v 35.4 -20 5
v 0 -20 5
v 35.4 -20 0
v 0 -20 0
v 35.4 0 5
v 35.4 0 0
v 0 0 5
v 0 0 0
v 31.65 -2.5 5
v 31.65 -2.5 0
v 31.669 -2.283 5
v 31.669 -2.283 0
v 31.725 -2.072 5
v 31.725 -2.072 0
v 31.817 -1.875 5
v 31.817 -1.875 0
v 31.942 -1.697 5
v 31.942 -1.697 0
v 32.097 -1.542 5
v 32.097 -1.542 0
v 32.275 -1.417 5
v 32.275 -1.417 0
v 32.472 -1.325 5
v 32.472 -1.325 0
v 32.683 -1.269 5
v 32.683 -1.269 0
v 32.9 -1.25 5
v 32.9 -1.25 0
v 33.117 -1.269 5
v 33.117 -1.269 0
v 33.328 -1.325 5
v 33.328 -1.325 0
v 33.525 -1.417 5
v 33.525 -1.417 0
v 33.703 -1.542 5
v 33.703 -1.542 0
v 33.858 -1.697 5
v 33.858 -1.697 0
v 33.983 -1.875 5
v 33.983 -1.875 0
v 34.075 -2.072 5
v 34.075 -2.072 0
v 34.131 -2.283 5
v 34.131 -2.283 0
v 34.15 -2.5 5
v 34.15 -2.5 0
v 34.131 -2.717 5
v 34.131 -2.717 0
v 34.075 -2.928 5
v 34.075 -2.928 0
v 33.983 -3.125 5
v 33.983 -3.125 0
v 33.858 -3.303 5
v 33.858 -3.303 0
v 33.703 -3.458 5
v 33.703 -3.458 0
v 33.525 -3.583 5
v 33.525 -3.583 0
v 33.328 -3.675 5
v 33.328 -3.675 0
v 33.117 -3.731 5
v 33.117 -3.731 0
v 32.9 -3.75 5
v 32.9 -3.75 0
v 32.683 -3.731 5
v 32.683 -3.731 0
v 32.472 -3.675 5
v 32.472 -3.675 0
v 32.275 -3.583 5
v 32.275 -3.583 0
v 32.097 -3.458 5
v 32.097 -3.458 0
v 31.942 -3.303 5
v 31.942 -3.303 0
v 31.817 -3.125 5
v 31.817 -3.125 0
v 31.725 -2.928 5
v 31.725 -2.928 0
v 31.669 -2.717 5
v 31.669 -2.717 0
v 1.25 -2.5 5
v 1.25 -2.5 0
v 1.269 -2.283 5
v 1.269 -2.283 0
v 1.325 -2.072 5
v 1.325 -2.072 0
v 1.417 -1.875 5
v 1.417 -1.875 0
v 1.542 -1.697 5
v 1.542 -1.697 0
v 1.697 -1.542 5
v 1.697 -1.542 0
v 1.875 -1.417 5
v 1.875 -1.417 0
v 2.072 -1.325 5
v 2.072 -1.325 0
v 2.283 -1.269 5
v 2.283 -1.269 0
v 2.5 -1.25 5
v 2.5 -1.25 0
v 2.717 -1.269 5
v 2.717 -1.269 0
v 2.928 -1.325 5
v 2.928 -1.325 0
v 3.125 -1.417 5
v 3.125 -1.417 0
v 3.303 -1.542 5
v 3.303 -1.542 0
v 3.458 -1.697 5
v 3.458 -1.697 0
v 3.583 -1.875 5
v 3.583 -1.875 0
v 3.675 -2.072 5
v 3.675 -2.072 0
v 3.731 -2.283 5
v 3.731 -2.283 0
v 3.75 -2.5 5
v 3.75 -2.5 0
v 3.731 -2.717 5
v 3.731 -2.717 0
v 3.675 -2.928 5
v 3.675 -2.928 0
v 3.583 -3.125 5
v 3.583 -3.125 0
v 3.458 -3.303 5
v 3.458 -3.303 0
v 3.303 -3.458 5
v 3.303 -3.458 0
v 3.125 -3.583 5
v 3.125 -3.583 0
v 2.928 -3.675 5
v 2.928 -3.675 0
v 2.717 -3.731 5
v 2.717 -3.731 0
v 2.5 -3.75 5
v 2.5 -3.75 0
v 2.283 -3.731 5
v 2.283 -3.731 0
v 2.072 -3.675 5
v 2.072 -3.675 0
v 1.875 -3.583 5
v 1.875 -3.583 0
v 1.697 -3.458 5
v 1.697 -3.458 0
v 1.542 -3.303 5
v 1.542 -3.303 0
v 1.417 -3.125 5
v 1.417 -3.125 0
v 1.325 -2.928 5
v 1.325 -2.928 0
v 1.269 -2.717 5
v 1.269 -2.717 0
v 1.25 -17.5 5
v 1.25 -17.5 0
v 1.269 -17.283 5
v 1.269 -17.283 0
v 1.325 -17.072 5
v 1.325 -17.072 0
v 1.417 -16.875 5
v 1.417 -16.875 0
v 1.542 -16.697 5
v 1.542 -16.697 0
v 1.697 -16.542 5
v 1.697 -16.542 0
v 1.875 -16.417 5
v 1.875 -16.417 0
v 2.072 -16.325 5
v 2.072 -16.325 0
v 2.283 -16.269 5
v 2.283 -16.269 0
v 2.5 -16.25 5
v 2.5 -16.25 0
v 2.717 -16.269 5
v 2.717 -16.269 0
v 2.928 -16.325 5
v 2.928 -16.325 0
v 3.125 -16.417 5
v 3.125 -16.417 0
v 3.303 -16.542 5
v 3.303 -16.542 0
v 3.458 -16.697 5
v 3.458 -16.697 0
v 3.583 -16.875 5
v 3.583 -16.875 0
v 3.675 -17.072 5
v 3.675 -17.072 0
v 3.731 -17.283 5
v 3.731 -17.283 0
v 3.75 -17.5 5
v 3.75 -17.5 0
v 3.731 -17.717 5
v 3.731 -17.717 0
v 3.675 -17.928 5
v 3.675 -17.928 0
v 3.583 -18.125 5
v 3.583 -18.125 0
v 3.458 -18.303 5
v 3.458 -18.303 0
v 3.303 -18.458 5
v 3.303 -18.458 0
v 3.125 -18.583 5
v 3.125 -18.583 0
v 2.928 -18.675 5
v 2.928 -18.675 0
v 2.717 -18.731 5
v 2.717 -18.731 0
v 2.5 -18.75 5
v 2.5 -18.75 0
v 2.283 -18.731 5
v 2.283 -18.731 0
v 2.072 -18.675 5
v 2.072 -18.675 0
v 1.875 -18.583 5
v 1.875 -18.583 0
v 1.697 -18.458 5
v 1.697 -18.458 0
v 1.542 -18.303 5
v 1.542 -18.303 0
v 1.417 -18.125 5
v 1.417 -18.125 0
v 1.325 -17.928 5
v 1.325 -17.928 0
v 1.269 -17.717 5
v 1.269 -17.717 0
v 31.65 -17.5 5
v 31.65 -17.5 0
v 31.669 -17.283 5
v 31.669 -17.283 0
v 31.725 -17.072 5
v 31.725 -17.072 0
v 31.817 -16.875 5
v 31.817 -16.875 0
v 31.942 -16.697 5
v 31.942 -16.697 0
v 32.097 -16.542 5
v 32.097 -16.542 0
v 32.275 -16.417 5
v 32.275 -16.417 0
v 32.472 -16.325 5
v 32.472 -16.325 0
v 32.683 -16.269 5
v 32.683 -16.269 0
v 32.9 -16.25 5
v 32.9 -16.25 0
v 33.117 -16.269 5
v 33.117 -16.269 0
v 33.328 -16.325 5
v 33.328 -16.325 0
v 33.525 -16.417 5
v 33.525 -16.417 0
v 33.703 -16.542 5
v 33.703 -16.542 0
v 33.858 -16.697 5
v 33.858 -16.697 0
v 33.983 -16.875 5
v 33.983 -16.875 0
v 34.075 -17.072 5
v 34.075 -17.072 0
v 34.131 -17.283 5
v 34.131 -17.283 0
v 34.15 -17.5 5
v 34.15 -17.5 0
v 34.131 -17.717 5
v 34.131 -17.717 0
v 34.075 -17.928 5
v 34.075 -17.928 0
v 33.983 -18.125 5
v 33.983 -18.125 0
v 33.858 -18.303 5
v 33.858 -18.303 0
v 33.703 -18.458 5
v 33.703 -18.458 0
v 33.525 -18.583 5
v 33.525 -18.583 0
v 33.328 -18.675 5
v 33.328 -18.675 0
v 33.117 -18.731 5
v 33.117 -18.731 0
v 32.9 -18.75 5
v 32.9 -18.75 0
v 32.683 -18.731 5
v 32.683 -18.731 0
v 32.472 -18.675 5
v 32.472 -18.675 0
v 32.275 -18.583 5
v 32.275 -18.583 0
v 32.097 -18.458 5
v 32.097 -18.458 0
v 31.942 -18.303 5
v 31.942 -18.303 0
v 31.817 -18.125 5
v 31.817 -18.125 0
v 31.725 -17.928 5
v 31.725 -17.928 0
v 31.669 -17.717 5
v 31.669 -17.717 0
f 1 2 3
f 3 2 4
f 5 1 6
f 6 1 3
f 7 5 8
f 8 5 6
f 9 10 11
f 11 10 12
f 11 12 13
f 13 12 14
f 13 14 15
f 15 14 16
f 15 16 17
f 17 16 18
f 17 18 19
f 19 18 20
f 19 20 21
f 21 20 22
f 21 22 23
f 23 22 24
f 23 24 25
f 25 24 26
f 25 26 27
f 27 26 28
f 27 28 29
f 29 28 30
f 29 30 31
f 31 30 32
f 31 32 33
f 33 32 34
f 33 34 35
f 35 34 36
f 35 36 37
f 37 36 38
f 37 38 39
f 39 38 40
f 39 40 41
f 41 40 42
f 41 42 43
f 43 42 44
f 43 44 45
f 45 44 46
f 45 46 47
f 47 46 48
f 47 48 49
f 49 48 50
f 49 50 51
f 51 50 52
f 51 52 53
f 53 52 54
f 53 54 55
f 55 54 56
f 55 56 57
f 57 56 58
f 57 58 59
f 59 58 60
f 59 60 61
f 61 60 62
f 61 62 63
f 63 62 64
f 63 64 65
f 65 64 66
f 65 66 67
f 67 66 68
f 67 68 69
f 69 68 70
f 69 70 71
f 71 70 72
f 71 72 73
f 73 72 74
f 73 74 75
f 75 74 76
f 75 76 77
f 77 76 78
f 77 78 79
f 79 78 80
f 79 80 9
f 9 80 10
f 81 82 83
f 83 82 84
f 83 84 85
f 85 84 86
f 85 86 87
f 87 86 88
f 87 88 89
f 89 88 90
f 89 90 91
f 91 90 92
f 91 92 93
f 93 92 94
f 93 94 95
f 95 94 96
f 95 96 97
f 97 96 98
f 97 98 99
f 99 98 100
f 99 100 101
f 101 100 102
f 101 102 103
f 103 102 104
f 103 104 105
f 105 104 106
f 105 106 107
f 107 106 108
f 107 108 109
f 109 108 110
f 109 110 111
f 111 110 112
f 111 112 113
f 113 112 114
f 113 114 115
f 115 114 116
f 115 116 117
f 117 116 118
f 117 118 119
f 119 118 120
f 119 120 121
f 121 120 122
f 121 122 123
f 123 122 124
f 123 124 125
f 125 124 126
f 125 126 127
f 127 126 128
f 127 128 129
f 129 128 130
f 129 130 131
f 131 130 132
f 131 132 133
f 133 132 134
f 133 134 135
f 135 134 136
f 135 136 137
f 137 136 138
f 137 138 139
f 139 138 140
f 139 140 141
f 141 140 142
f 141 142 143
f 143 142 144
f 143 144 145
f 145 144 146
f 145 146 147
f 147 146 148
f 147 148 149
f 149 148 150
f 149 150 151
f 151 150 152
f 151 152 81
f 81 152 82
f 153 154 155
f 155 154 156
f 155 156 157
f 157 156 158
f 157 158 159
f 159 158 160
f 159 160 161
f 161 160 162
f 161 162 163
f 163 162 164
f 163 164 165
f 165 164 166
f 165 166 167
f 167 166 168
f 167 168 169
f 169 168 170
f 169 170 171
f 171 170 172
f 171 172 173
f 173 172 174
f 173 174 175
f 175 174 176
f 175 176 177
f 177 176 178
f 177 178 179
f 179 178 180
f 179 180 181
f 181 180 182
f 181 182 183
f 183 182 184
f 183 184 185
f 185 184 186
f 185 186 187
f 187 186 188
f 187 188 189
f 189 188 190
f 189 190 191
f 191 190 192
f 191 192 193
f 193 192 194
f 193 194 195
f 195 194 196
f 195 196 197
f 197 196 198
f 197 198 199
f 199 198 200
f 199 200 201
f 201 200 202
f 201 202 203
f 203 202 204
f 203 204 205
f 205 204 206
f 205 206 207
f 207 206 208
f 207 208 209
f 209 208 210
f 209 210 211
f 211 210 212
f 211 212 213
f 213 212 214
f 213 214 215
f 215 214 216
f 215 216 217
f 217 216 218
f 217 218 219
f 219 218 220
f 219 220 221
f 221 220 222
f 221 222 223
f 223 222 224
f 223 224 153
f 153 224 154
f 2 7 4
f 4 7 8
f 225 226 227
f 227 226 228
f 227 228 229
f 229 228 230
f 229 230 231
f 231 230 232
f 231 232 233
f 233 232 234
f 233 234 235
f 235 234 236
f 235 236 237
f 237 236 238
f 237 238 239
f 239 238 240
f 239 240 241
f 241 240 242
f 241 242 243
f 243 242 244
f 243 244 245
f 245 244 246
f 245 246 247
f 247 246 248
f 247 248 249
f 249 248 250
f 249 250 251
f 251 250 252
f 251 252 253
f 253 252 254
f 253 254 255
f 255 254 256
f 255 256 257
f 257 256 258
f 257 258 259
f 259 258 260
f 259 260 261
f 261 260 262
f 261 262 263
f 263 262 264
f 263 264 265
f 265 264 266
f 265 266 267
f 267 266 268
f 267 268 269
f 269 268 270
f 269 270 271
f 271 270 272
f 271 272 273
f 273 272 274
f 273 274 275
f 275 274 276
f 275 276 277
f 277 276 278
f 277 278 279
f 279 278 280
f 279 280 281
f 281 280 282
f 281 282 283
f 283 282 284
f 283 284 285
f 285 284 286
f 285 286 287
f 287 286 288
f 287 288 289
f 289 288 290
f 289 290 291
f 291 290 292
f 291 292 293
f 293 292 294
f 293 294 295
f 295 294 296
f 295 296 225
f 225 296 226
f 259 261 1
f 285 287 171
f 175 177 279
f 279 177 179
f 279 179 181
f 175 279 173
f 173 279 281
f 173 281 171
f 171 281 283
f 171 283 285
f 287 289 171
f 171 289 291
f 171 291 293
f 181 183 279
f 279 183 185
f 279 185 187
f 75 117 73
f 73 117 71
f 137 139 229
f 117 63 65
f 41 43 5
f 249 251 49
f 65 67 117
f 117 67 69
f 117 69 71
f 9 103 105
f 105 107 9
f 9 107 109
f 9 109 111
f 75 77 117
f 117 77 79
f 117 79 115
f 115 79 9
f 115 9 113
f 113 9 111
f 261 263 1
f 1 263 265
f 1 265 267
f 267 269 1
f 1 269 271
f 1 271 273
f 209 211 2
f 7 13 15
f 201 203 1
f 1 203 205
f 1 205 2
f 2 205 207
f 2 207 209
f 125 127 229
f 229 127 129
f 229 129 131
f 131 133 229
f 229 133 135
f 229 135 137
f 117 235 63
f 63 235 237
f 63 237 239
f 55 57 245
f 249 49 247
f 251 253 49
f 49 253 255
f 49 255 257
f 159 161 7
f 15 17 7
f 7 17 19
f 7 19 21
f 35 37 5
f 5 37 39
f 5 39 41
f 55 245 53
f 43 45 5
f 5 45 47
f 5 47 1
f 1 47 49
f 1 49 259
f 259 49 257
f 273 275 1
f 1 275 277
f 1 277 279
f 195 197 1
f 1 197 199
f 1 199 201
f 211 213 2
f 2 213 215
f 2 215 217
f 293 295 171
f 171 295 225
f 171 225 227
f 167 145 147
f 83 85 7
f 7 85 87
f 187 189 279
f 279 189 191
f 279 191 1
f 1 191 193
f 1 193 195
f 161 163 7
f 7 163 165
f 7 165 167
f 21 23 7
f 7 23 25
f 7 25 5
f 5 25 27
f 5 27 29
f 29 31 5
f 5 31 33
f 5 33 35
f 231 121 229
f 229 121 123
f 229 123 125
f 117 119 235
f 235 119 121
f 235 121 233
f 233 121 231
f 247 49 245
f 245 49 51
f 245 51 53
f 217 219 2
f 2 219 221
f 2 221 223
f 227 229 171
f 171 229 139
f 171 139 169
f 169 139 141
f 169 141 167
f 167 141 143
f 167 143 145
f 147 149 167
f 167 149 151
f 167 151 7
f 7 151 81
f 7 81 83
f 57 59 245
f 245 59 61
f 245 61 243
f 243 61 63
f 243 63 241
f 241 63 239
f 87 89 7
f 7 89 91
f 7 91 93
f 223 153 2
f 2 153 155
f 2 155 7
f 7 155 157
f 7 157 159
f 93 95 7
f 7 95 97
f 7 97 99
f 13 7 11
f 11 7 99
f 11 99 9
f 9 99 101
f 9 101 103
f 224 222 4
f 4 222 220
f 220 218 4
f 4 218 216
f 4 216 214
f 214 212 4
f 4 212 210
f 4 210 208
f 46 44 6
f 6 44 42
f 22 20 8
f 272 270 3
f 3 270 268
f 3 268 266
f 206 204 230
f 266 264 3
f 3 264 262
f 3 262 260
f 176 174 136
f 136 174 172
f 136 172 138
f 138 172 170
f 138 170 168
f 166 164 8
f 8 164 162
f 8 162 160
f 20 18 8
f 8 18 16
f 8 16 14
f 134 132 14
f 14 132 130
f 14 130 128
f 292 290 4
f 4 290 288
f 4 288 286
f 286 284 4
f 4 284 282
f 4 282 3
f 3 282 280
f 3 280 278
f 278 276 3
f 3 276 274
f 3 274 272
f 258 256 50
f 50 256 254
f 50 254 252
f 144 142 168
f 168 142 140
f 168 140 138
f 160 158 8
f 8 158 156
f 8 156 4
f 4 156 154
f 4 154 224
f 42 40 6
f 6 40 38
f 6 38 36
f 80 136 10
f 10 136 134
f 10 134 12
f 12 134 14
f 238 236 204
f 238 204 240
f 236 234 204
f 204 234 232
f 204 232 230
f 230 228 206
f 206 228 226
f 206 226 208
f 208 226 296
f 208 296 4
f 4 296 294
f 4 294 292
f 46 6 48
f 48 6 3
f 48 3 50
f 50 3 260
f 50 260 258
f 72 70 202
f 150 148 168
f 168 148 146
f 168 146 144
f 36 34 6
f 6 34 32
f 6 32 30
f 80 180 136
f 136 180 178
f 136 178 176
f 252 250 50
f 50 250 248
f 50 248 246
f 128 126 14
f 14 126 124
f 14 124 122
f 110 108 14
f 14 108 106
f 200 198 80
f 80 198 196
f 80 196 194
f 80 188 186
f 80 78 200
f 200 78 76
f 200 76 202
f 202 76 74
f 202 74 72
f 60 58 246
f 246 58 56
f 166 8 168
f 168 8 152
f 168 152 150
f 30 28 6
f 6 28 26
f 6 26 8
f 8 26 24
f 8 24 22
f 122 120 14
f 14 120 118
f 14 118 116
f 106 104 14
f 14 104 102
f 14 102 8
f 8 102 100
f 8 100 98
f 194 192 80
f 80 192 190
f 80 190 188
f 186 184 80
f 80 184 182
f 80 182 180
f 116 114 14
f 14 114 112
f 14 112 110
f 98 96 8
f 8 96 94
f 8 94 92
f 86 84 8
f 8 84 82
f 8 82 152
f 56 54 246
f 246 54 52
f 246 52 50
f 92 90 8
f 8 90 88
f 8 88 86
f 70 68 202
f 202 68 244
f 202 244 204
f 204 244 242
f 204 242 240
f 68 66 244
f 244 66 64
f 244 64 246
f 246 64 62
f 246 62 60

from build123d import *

# Parameters (mm, degrees)
SKETCH1_W           = 5
SKETCH1_H           = 5
SKETCH1_R           = 1.25
BOSS_EXTRUDE1_DEPTH = 5


with BuildPart() as part:
    # Sketch1 → Boss-Extrude1 (new body)
    with BuildSketch(Plane.XY):
        Polygon((30.4, 0), (5, 0), (5, -5), (0, -5), (0, -15), (5, -15), (5, -20), (30.4, -20), (30.4, -15), (35.4, -15), (35.4, -5), (30.4, -5), align=None)
        with Locations((2.5, -2.5)):
            Rectangle(SKETCH1_W, SKETCH1_H)
        with Locations((2.5, -2.5)):
            Circle(SKETCH1_R, mode=Mode.SUBTRACT)
        with Locations((32.9, -2.5)):
            Rectangle(SKETCH1_W, SKETCH1_H)
        with Locations((32.9, -2.5)):
            Circle(SKETCH1_R, mode=Mode.SUBTRACT)
        with Locations((32.9, -17.5)):
            Rectangle(SKETCH1_W, SKETCH1_H)
        with Locations((32.9, -17.5)):
            Circle(SKETCH1_R, mode=Mode.SUBTRACT)
        with Locations((2.5, -17.5)):
            Rectangle(SKETCH1_W, SKETCH1_H)
        with Locations((2.5, -17.5)):
            Circle(SKETCH1_R, mode=Mode.SUBTRACT)
    extrude(amount=BOSS_EXTRUDE1_DEPTH)


solid = part.part
